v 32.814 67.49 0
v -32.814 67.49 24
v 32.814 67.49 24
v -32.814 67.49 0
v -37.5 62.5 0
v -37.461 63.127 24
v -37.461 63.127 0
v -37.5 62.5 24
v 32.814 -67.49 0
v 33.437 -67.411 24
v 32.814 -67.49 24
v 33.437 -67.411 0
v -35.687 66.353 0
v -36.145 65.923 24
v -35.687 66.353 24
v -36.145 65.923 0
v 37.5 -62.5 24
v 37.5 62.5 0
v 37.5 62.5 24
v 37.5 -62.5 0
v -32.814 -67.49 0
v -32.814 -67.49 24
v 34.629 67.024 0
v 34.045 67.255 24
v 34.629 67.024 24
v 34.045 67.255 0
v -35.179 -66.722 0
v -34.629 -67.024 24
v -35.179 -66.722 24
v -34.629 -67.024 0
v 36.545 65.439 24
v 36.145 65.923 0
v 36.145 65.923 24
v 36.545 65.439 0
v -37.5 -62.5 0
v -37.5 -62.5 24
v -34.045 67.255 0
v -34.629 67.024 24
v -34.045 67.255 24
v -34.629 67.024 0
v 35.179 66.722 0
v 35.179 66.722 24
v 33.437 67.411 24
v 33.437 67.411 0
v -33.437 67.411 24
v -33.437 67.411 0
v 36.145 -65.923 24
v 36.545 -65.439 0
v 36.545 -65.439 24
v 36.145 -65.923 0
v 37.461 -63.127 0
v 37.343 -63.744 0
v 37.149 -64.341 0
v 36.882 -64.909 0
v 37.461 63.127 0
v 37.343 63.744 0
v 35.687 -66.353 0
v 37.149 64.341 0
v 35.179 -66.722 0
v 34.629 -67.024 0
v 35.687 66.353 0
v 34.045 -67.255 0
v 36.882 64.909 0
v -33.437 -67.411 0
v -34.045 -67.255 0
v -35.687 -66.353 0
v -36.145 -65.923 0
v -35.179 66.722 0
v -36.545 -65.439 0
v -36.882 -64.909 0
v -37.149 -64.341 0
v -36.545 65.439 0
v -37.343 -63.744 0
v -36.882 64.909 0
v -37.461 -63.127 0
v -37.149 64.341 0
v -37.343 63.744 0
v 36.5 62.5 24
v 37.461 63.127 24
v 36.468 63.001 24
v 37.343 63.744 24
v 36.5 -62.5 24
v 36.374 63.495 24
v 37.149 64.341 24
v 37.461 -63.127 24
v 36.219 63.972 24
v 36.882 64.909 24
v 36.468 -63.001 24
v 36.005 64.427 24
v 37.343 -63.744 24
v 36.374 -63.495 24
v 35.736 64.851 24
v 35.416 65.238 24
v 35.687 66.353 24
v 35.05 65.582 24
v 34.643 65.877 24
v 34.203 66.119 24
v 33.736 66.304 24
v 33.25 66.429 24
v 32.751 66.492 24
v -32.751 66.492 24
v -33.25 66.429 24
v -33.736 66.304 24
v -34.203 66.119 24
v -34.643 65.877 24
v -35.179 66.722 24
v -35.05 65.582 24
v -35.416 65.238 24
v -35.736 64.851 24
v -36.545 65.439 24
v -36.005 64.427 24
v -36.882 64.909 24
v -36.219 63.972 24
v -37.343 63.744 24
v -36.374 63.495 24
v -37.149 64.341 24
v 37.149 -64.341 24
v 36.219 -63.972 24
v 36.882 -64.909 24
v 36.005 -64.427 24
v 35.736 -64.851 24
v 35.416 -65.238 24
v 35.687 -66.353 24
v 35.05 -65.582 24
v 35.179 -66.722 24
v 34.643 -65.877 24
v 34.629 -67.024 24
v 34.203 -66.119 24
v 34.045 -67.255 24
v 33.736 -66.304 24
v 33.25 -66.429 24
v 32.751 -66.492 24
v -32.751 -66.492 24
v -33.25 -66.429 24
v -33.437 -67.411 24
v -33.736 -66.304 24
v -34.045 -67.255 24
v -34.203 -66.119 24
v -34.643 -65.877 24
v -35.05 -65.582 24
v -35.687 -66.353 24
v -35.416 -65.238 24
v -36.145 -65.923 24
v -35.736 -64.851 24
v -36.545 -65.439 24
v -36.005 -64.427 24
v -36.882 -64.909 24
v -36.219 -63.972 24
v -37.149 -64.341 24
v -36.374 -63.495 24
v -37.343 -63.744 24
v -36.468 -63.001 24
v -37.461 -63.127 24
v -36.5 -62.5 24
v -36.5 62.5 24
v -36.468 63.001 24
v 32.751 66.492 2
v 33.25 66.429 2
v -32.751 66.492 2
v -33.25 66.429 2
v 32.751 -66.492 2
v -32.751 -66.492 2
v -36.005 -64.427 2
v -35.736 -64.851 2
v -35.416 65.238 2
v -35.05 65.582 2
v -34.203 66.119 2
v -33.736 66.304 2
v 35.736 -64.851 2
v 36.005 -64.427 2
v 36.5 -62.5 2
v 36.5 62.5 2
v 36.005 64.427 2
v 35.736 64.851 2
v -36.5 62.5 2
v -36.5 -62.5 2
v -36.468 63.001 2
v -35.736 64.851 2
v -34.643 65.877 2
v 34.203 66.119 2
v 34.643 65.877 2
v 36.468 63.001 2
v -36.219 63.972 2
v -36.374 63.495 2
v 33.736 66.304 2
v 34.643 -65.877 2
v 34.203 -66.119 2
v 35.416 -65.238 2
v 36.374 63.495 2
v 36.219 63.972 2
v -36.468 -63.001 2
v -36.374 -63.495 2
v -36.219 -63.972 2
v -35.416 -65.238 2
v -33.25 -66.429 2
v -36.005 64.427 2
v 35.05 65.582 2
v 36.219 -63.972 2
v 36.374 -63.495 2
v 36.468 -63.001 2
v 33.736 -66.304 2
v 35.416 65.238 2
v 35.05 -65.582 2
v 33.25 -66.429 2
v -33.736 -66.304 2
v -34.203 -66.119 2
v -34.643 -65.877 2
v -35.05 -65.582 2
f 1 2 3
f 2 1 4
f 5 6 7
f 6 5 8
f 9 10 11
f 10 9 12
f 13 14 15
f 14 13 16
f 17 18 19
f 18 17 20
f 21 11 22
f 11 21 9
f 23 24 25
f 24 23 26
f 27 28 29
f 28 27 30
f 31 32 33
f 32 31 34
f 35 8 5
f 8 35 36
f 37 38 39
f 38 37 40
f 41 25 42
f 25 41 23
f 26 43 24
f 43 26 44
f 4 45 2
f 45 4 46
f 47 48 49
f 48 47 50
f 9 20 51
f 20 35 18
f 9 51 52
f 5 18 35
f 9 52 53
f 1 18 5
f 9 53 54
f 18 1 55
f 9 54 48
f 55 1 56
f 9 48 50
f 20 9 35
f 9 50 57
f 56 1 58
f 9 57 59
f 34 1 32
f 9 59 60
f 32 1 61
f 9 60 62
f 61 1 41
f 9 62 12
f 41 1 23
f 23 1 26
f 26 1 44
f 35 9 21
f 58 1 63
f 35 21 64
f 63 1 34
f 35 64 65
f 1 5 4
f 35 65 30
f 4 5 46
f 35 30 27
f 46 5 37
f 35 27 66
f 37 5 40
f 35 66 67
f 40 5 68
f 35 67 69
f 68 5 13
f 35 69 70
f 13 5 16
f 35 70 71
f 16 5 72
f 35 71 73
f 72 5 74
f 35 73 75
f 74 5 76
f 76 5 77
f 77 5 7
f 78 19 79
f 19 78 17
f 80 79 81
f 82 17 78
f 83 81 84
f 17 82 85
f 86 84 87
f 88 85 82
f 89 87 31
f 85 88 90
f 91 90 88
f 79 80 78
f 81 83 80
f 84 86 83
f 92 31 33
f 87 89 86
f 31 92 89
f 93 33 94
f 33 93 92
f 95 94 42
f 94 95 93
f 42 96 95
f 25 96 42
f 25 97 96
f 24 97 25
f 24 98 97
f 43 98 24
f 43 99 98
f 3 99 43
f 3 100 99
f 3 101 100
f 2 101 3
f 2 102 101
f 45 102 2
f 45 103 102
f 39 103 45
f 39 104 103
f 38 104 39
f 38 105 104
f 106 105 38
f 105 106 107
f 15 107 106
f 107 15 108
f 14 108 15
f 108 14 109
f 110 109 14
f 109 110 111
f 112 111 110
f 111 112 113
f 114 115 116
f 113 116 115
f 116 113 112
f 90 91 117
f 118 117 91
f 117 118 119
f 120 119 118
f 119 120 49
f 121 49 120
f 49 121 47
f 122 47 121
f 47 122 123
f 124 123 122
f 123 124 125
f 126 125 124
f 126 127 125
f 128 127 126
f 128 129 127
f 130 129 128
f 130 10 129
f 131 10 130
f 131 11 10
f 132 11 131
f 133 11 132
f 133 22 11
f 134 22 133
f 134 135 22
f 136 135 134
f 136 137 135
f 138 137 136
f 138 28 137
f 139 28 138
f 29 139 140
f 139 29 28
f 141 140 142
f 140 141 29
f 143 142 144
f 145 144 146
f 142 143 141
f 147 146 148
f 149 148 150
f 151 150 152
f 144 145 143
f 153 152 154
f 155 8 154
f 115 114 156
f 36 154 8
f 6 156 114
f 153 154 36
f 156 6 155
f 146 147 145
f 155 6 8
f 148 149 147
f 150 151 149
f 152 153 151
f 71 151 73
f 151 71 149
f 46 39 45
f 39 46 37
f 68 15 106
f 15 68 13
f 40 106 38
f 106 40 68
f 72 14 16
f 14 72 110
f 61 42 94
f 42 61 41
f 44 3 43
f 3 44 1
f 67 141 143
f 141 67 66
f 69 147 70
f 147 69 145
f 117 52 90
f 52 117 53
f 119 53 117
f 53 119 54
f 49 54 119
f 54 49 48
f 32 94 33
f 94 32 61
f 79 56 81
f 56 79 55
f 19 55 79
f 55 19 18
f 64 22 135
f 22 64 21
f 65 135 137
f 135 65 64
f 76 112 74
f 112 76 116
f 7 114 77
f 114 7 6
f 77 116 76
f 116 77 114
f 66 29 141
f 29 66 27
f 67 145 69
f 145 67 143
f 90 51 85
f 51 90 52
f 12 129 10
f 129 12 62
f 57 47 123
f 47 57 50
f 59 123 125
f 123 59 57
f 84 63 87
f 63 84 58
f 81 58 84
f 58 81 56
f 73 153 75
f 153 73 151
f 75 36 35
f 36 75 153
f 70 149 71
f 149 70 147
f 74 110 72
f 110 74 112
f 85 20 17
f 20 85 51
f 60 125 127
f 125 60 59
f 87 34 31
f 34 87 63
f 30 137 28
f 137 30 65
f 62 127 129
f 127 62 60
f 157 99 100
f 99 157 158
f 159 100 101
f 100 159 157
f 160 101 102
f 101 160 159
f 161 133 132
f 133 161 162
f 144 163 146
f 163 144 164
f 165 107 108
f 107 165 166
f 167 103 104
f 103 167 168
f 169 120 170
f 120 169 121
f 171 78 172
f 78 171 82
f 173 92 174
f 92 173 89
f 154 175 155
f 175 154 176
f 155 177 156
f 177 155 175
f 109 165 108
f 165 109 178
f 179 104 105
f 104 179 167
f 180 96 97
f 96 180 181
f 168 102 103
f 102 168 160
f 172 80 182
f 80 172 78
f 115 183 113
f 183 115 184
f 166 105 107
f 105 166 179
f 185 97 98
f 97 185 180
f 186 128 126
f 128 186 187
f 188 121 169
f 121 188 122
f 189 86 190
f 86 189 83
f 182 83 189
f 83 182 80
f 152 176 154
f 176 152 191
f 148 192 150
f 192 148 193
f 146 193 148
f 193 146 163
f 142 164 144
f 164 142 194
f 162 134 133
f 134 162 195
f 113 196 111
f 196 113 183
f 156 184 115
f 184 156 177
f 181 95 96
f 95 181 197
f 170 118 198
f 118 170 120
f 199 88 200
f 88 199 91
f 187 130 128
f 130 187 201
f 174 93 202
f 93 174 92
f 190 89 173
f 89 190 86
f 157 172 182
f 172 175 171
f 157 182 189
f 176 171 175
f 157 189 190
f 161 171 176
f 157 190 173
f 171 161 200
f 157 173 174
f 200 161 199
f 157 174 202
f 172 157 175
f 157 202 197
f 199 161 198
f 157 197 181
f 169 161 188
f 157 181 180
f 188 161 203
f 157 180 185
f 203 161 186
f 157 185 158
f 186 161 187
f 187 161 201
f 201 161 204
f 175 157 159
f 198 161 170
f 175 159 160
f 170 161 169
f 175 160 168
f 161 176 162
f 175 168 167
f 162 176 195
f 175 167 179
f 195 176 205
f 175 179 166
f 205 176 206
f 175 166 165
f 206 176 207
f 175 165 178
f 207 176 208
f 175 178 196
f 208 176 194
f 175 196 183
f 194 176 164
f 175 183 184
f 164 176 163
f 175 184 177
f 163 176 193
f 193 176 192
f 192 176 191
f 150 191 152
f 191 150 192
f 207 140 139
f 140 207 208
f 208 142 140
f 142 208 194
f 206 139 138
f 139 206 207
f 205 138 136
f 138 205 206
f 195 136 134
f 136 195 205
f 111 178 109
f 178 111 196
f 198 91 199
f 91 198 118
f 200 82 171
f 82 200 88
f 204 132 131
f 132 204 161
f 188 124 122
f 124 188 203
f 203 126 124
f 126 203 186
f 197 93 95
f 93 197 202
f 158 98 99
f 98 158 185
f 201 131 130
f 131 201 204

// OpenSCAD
$fn = 50;


difference() {
	union() {
		hull() {
			translate(v = [-32.5000000000, 62.5000000000, 0]) {
				cylinder(h = 24, r = 5);
			}
			translate(v = [32.5000000000, 62.5000000000, 0]) {
				cylinder(h = 24, r = 5);
			}
			translate(v = [-32.5000000000, -62.5000000000, 0]) {
				cylinder(h = 24, r = 5);
			}
			translate(v = [32.5000000000, -62.5000000000, 0]) {
				cylinder(h = 24, r = 5);
			}
		}
	}
	union() {
		translate(v = [0, 0, 2]) {
			hull() {
				translate(v = [-32.5000000000, 62.5000000000, 0]) {
					cylinder(h = 22, r = 4);
				}
				translate(v = [32.5000000000, 62.5000000000, 0]) {
					cylinder(h = 22, r = 4);
				}
				translate(v = [-32.5000000000, -62.5000000000, 0]) {
					cylinder(h = 22, r = 4);
				}
				translate(v = [32.5000000000, -62.5000000000, 0]) {
					cylinder(h = 22, r = 4);
				}
			}
		}
	}
}
